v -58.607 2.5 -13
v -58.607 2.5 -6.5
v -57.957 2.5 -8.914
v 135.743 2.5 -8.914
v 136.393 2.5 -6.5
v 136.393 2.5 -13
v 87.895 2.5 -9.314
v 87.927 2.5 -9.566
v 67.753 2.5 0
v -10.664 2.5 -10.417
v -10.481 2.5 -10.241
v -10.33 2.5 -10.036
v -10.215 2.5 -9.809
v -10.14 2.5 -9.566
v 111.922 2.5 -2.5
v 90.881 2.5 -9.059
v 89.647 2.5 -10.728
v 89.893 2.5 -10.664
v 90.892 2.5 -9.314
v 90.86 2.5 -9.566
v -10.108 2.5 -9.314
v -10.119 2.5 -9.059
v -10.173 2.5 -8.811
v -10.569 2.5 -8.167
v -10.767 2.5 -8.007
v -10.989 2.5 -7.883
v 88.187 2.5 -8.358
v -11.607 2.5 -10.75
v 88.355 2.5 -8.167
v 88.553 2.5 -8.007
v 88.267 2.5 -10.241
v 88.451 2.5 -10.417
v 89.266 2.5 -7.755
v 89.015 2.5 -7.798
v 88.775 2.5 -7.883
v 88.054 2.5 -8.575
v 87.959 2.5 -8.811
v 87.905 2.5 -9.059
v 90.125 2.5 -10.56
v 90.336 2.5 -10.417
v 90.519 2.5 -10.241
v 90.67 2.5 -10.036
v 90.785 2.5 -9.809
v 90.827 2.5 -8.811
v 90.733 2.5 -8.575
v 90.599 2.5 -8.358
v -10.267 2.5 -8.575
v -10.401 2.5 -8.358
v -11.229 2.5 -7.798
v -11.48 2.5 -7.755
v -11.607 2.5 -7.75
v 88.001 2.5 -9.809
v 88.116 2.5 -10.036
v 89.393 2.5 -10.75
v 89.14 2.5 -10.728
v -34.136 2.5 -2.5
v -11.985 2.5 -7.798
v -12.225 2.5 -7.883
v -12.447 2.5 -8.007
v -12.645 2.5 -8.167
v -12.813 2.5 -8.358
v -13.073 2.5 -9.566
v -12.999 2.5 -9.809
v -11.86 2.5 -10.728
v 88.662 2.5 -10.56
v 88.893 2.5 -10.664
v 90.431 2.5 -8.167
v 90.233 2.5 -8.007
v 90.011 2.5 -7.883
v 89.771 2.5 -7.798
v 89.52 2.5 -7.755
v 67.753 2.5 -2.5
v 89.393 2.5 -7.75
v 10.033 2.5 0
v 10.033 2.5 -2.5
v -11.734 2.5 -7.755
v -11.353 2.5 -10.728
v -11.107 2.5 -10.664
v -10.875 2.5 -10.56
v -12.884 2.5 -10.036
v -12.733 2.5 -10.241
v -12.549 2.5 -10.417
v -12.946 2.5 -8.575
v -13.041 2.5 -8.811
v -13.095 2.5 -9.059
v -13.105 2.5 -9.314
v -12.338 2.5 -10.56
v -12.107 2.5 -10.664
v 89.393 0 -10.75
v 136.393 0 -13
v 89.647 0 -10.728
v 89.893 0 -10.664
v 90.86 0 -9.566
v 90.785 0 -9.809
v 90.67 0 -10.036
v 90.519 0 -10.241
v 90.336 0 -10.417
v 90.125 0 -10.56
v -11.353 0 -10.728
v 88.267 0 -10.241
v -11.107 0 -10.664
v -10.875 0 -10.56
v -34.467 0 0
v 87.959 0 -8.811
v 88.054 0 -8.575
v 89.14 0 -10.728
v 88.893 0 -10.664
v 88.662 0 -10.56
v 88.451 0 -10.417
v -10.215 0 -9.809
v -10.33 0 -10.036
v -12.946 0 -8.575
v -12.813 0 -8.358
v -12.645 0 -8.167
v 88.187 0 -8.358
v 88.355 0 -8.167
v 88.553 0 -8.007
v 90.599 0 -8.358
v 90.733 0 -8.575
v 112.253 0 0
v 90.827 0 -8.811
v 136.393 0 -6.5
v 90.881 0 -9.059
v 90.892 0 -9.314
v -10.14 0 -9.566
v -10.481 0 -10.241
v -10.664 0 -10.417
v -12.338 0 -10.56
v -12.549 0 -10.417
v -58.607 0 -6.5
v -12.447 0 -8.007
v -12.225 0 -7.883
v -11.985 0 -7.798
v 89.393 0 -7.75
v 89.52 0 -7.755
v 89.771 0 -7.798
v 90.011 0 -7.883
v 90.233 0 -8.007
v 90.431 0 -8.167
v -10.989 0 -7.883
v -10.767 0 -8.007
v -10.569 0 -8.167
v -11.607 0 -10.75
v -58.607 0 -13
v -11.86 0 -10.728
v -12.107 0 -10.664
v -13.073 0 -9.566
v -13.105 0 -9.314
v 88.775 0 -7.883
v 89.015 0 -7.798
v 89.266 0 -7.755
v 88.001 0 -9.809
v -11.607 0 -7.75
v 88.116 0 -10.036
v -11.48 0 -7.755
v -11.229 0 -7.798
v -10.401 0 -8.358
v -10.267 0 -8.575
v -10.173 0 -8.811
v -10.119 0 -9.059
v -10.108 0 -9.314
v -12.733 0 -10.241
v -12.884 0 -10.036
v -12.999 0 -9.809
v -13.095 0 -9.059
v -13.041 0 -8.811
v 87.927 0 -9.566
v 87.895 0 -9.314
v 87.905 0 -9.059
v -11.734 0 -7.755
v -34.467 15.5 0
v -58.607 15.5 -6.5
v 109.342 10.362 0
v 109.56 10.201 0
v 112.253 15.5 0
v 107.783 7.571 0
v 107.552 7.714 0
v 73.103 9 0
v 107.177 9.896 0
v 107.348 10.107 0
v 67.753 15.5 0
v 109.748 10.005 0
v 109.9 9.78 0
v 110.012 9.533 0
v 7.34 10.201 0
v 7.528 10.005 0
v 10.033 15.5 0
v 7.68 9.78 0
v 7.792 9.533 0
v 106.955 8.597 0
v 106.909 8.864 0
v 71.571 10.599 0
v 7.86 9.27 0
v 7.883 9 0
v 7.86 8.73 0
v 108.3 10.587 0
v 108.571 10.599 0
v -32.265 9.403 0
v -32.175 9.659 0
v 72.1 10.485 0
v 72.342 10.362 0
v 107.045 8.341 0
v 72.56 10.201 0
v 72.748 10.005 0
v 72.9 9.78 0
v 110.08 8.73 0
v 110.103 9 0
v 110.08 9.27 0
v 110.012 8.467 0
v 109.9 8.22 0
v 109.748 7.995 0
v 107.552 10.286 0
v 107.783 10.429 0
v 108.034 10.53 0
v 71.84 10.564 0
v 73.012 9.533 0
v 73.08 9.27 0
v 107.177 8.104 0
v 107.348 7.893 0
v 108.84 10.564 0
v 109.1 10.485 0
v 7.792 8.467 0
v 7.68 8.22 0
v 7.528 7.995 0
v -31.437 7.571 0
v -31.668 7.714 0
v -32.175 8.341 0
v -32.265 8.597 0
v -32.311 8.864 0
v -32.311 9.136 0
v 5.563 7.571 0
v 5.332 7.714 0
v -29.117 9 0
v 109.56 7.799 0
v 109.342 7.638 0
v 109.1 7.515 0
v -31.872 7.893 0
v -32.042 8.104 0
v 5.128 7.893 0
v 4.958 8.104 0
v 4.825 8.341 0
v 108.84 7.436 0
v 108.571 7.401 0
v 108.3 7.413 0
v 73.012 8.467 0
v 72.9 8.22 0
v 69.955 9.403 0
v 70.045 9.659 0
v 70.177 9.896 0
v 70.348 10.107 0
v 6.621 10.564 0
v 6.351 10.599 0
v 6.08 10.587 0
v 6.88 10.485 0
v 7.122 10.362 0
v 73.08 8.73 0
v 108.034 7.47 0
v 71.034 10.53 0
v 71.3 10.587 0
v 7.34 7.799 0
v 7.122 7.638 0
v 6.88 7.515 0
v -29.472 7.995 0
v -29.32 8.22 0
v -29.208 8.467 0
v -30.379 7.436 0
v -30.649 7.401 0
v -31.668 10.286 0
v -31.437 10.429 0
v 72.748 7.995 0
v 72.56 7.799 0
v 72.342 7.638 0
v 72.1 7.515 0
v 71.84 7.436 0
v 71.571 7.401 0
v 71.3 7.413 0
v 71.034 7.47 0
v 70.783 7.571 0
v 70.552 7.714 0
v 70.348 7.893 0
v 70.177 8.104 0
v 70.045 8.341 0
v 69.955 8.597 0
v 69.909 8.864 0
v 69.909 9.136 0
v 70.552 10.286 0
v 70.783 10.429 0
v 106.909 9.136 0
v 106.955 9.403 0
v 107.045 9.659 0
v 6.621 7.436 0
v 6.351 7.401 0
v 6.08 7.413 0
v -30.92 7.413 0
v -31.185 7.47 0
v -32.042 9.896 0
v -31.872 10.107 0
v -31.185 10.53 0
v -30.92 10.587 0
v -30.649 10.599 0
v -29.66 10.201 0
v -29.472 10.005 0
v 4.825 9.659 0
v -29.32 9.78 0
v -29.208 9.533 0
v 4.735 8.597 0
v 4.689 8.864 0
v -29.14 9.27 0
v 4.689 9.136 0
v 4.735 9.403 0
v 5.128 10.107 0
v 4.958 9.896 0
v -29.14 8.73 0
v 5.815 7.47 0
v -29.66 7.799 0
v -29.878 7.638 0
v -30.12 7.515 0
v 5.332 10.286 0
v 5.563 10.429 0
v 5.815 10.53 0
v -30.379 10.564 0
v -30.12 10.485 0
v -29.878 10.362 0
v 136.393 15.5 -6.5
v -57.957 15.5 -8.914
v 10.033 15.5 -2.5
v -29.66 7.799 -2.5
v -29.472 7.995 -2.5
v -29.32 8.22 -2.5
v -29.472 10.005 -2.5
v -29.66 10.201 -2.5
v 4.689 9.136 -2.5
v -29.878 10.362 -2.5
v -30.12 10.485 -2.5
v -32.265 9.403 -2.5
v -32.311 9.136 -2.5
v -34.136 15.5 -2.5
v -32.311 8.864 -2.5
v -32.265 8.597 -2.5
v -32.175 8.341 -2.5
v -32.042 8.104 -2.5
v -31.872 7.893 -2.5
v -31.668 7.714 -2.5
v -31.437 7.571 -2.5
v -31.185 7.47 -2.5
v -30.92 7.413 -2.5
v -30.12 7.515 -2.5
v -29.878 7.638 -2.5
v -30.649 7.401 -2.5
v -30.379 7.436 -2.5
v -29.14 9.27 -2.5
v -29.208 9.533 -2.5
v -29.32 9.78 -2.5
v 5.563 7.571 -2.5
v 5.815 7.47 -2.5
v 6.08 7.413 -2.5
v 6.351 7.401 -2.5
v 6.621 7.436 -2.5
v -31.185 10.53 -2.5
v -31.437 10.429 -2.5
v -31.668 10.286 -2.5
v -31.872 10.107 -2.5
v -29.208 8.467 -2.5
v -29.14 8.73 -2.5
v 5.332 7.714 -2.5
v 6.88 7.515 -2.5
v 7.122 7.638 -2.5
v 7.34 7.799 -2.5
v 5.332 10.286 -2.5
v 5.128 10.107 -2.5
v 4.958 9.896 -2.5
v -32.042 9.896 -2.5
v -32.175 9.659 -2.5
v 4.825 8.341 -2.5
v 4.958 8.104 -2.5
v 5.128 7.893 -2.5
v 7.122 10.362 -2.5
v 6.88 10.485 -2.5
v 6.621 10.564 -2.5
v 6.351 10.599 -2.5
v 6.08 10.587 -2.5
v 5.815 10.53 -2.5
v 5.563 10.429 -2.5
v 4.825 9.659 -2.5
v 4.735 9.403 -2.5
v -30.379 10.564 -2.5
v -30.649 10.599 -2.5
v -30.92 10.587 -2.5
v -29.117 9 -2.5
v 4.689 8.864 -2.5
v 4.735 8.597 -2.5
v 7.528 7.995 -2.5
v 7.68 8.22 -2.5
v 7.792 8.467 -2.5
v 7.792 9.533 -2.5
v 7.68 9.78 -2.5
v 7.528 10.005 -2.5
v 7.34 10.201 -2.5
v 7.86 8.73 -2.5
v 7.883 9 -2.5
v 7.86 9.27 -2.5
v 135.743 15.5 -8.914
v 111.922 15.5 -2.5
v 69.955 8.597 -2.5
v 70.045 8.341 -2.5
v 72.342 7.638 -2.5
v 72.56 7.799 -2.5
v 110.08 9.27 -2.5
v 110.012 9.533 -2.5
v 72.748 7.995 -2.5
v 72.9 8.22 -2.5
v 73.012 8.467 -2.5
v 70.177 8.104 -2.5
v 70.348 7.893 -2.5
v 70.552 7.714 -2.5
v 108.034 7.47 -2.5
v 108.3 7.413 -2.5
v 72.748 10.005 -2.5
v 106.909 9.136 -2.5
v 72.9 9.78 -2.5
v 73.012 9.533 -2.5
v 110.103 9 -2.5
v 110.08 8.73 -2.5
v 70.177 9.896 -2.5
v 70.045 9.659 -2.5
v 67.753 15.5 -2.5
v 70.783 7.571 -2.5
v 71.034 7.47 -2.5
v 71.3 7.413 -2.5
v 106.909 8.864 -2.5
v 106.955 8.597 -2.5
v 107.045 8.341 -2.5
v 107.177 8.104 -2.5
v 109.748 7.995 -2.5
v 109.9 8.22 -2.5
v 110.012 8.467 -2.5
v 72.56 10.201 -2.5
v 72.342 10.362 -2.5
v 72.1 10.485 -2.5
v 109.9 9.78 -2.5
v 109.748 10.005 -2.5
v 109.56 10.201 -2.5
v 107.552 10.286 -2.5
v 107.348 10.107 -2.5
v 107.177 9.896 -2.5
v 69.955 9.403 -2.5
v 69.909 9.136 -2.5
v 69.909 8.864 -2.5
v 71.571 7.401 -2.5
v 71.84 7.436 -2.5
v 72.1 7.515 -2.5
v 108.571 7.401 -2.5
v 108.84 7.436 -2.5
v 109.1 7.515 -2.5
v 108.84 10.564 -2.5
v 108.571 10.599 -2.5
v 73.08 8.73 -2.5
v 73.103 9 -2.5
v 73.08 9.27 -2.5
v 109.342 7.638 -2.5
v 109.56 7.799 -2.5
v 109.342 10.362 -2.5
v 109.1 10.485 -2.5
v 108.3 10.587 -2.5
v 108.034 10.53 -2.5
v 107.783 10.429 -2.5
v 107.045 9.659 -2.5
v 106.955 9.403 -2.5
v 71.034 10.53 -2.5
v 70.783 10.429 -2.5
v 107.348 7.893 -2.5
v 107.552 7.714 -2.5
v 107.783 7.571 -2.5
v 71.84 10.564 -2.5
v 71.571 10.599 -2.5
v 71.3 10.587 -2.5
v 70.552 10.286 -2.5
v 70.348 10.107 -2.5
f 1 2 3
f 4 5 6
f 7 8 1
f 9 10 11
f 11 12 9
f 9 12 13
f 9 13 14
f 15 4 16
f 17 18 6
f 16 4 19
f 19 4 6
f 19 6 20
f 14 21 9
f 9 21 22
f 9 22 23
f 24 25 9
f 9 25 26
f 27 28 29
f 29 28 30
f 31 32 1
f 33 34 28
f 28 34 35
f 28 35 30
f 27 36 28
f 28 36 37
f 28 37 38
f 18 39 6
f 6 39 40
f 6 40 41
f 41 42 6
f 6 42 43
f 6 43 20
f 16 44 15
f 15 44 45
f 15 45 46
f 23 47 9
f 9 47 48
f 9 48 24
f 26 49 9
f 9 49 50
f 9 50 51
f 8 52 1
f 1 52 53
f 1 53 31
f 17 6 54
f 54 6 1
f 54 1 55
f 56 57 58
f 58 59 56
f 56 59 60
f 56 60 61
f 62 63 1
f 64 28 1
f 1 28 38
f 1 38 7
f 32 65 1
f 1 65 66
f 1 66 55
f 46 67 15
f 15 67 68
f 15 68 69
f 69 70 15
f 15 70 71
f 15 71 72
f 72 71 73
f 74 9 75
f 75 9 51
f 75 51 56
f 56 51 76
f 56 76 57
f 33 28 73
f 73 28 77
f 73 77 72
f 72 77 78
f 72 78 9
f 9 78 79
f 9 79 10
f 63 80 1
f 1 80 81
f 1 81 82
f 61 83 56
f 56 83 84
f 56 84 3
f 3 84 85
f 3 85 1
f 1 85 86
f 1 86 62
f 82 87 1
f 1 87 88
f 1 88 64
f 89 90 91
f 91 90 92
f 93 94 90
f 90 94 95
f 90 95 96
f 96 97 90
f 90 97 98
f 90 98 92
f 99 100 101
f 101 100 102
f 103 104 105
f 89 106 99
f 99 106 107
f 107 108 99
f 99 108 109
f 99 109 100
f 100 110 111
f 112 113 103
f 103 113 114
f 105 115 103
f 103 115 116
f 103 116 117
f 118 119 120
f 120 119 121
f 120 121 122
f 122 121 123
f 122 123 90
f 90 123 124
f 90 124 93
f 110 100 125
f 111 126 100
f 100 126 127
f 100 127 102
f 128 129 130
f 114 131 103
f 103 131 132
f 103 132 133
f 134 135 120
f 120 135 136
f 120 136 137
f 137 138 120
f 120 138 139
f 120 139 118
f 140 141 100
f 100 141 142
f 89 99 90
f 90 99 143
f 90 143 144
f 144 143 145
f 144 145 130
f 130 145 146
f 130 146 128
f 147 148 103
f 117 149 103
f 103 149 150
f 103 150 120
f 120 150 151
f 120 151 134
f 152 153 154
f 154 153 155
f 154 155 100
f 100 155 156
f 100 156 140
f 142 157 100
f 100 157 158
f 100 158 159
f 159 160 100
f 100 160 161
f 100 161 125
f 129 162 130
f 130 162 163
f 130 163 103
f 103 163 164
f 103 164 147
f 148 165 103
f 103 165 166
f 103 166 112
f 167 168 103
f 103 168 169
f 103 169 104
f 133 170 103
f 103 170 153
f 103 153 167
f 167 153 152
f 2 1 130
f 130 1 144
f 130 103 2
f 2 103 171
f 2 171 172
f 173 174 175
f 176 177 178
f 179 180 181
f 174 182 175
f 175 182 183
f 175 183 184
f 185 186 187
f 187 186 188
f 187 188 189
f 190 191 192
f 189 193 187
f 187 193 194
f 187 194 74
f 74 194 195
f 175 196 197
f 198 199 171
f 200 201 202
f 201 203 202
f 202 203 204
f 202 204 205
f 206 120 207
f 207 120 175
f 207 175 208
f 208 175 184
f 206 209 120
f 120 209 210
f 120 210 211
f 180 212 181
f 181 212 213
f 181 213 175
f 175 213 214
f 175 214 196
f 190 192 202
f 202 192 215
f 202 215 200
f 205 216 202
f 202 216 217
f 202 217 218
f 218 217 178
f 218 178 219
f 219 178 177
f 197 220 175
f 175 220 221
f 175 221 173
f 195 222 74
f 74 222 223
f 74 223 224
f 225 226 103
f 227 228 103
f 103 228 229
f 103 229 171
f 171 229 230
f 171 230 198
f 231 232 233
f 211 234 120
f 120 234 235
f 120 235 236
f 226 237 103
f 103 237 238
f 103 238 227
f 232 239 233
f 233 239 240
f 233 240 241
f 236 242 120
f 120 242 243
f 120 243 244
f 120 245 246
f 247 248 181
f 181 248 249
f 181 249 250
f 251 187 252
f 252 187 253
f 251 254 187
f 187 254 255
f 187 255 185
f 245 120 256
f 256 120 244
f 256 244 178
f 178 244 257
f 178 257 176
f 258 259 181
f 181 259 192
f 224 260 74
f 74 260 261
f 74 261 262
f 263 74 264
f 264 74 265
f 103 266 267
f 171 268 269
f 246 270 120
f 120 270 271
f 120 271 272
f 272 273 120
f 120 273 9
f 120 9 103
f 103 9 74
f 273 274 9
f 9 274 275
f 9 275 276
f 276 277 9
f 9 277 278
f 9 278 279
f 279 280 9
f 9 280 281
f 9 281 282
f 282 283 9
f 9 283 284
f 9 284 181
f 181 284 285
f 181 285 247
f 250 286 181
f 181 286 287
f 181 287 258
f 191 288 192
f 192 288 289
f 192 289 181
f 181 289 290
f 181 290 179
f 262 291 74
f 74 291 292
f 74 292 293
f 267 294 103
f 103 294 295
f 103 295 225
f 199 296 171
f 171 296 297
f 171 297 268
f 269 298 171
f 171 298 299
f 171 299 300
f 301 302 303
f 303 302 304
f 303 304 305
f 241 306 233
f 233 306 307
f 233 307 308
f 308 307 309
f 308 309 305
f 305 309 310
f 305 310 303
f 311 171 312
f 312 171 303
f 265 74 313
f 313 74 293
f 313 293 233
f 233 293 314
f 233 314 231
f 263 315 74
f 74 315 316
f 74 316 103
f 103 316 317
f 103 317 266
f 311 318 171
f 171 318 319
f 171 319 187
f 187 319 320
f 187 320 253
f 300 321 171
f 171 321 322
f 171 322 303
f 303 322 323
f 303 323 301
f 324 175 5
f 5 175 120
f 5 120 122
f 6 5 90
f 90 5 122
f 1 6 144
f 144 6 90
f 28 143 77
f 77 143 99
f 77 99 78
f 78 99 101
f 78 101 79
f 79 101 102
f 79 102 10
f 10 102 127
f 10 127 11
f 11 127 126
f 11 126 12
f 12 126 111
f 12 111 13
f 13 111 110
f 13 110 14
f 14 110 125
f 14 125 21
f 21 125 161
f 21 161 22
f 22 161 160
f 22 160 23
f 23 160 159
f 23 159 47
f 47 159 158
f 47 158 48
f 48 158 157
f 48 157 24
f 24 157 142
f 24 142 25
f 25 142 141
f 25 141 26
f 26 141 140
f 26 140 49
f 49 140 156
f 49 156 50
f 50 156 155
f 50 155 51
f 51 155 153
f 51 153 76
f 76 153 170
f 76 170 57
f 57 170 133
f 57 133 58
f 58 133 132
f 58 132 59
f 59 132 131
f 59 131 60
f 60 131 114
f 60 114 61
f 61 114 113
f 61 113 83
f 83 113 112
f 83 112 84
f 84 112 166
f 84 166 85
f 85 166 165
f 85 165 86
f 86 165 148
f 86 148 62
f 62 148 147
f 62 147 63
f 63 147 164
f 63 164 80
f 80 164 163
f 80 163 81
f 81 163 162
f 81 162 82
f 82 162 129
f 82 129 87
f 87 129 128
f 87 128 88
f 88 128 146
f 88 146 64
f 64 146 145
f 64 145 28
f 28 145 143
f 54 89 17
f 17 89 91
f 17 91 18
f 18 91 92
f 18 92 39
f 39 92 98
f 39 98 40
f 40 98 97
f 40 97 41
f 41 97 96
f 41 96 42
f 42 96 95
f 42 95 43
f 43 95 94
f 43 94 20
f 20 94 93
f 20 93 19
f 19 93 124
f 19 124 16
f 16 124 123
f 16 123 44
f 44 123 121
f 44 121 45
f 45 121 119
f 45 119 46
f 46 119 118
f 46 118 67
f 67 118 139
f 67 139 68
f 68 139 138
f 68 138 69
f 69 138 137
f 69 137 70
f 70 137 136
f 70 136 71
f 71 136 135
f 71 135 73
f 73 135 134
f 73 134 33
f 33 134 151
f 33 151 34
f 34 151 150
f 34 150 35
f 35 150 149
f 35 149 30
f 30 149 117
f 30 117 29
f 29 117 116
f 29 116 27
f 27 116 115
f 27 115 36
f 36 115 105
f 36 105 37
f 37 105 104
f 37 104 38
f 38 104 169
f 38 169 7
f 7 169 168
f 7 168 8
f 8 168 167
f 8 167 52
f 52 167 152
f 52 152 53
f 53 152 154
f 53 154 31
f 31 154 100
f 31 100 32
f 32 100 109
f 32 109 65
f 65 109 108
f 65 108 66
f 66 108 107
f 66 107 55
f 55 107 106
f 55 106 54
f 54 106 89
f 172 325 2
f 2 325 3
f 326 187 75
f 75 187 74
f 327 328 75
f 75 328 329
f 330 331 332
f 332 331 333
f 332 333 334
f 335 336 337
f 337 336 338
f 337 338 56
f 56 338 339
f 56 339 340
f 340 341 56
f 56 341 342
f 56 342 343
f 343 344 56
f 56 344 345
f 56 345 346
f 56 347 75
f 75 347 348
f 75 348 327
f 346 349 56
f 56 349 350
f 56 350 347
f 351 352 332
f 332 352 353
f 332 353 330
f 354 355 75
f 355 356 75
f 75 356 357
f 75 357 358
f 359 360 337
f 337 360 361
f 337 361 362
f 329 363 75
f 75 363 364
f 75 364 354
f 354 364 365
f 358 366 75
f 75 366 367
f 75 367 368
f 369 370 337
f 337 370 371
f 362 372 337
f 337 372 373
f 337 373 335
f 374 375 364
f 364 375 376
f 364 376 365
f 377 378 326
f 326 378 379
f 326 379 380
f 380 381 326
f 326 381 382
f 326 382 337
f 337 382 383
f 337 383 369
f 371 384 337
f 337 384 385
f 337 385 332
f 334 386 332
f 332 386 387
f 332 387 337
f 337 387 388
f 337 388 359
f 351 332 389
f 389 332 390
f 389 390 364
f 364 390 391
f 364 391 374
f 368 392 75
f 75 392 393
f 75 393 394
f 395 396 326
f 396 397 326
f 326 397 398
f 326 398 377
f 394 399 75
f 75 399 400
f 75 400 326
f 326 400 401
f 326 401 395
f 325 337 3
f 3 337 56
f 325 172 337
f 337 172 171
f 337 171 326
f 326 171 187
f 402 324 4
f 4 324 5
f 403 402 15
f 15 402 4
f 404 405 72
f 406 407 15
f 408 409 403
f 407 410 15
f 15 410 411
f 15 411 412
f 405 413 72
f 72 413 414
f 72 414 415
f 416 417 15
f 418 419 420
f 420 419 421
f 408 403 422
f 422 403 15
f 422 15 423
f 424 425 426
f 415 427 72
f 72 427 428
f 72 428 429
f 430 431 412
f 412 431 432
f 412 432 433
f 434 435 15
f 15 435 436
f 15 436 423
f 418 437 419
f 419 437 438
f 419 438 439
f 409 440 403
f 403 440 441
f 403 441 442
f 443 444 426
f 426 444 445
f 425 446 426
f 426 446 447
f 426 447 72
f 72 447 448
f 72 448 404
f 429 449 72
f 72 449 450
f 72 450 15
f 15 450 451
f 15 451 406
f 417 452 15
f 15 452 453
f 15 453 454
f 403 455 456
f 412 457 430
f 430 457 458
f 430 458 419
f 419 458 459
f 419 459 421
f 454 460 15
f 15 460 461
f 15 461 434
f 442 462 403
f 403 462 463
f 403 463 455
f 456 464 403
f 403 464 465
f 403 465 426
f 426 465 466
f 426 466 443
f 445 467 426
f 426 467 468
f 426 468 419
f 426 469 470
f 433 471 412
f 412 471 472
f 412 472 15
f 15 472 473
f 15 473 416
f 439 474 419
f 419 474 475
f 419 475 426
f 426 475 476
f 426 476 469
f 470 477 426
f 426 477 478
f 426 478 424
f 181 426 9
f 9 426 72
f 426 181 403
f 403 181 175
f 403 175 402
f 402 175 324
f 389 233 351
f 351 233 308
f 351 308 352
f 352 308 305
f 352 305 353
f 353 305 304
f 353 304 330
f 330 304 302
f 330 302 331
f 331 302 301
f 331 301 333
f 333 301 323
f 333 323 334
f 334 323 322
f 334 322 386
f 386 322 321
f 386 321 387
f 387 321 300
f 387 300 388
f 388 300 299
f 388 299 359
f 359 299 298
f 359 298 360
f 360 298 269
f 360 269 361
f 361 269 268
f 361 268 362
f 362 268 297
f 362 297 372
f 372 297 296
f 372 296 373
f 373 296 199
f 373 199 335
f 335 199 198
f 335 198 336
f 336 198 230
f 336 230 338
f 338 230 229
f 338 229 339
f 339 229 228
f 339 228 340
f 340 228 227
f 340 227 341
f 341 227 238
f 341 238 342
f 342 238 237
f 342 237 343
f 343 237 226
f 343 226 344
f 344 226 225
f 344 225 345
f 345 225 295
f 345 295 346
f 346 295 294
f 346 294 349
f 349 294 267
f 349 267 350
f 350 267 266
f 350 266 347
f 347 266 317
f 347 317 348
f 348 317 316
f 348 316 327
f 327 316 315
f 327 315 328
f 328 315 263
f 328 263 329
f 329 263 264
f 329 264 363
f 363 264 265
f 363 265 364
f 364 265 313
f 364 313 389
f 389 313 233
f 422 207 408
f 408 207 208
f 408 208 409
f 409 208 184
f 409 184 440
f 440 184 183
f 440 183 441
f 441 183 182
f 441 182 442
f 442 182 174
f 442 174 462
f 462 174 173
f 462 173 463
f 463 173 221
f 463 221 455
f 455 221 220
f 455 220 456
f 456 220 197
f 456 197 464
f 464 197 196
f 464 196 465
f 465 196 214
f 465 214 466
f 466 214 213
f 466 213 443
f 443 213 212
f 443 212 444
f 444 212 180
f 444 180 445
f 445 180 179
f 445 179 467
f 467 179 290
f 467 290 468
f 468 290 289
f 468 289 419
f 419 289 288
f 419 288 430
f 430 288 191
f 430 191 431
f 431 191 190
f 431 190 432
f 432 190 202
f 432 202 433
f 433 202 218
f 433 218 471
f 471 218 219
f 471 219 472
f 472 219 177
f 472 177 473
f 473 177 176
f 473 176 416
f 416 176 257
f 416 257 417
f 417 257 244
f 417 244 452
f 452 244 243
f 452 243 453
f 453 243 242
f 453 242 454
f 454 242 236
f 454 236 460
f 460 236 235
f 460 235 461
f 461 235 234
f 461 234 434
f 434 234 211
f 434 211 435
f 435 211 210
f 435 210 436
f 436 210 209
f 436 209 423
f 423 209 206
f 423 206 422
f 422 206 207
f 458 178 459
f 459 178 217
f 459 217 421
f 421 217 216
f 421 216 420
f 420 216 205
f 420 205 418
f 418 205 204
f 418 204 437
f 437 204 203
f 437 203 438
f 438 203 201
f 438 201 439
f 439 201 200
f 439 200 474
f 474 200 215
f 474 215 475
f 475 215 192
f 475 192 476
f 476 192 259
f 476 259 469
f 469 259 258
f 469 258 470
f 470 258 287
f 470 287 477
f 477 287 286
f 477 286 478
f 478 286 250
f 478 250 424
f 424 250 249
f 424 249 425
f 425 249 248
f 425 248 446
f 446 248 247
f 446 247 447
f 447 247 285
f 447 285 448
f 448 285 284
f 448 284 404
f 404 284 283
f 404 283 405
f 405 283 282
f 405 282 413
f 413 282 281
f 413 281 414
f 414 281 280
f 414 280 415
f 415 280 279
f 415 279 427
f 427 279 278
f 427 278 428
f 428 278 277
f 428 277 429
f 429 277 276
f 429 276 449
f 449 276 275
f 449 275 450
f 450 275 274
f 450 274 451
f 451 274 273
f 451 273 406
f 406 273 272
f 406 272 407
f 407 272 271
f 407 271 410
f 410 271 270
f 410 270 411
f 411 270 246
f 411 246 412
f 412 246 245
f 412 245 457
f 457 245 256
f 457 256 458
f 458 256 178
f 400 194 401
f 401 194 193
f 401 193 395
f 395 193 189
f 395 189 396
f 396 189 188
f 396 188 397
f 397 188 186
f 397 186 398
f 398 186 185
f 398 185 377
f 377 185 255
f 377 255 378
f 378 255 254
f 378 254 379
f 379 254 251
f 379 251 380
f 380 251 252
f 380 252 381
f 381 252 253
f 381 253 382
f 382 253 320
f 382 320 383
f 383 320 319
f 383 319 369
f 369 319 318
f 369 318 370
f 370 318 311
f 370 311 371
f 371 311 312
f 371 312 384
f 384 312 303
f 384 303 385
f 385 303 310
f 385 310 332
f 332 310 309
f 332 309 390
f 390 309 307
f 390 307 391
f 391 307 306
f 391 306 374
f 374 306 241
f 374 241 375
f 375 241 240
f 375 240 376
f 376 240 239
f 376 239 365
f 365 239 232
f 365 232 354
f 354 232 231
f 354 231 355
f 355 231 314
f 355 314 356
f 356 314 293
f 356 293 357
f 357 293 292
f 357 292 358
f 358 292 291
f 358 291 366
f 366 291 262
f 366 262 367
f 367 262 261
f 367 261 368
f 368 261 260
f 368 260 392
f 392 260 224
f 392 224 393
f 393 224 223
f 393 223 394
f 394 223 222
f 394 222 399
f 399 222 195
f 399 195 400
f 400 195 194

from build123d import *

# Parameters (mm, degrees)
SKETCH1_R           = 1.5
BOSS_EXTRUDE1_DEPTH = 2.5
BOSS_EXTRUDE2_DEPTH = 13
SKETCH3_R           = 1.6
CUT_EXTRUDE1_DEPTH  = 13


with BuildPart() as part:
    # Sketch1 → Boss-Extrude1 (new body)
    with BuildSketch(Plane(origin=(0, 0, 0), x_dir=(1, 0, 0), z_dir=(0, 1, 0))):
        Polygon((-58.606798355, 6.5), (-34.466582946, 0), (112.252986236, 0), (136.393201645, 6.5), (136.393201645, 13), (-58.606798355, 13), align=None)
        with Locations((-11.606798355, 9.25)):
            Circle(SKETCH1_R, mode=Mode.SUBTRACT)
        with Locations((89.393201645, 9.25)):
            Circle(SKETCH1_R, mode=Mode.SUBTRACT)
    extrude(amount=BOSS_EXTRUDE1_DEPTH)

    # Sketch2 → Boss-Extrude2 (add)
    with BuildSketch(Plane(origin=(0, 2.5, 0), x_dir=(1, 0, 0), z_dir=(0, 1, 0))):
        Polygon((-58.606798355, 6.5), (-34.466582946, 0), (10.033417054, 0), (10.033417054, 2.5), (-34.135896564, 2.5), (-57.956798355, 8.914021541), align=None)
        Polygon((136.393201645, 6.5), (112.252986236, 0), (67.752986236, 0), (67.752986236, 2.5), (111.922299855, 2.5), (135.743201645, 8.914021541), align=None)
    extrude(amount=BOSS_EXTRUDE2_DEPTH)

    # Sketch3 → Cut-Extrude1 (cut)
    with BuildSketch(Plane.XY):
        with Locations((-30.716582946, 9)):
            Circle(SKETCH3_R)
        with Locations((6.283417054, 9)):
            Circle(SKETCH3_R)
        with Locations((71.502986236, 9)):
            Circle(SKETCH3_R)
        with Locations((108.502986236, 9)):
            Circle(SKETCH3_R)
    extrude(amount=-CUT_EXTRUDE1_DEPTH, mode=Mode.SUBTRACT)


solid = part.part
